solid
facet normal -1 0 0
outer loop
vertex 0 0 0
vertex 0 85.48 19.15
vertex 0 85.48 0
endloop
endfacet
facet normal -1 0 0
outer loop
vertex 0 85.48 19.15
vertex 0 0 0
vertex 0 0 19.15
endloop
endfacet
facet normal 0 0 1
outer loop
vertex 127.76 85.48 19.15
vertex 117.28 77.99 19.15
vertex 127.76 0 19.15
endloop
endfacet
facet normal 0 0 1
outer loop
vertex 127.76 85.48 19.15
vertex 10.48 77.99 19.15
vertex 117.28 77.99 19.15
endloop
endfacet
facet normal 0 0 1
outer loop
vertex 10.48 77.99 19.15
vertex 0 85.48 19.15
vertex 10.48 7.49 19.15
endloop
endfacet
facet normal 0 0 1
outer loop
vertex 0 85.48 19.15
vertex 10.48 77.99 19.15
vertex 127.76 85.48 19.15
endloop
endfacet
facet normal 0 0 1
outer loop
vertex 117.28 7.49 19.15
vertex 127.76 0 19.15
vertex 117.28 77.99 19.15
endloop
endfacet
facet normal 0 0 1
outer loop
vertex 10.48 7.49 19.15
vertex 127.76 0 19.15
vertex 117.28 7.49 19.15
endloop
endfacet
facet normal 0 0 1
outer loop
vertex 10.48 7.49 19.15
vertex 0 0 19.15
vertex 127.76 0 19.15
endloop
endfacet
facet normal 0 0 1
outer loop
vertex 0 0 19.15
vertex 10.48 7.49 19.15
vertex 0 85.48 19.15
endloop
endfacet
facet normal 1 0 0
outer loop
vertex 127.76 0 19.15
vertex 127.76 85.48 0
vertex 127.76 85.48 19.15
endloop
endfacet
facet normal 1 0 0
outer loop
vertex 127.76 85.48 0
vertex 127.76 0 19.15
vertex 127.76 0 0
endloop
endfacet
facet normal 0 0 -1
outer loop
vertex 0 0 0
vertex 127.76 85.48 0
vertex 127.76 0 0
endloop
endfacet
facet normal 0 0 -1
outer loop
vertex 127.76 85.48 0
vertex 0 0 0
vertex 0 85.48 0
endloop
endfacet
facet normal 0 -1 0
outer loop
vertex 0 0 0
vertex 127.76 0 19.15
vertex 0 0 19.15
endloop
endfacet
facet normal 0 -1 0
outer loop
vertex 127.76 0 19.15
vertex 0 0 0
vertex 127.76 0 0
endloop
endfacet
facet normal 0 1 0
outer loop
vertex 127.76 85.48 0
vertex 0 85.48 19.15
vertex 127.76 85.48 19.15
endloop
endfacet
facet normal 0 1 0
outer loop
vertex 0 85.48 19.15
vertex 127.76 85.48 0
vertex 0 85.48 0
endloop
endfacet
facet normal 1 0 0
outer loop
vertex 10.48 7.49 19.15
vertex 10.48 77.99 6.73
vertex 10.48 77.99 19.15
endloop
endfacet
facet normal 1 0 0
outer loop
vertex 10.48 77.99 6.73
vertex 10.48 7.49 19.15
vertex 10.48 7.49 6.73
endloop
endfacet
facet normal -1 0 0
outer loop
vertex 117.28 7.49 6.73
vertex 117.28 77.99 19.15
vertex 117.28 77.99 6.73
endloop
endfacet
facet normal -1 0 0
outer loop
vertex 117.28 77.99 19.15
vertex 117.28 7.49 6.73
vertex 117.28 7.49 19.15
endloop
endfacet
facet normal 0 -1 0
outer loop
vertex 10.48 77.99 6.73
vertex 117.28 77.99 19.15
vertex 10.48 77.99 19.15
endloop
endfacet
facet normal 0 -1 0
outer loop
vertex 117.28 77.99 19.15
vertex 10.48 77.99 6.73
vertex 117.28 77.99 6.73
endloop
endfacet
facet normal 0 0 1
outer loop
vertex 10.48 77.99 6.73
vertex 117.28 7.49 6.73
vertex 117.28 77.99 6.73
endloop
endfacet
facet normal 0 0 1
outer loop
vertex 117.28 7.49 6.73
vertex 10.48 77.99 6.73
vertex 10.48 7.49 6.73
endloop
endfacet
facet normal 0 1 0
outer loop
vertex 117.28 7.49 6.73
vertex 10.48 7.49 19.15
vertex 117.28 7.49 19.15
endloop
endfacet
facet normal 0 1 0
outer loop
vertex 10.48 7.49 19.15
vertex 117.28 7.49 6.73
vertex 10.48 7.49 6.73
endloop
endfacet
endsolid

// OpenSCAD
// Axygen 1 Well Reservoir 90 mL
// loadName: axygen_1_reservoir_90ml
// Auto-generated by labware_to_stl.py from Opentrons V2 labware definition

$fn = 64;

difference() {
    // ── Labware body ──────────────────────────────────────────────
    cube([127.7600, 85.4800, 19.1500]);

    // ── Well cutouts ──────────────────────────────────────────────
    // Well A1
    translate([10.4800, 7.4900, 6.7300])
        cube([106.8000, 70.5000, 13.4200]);
}
